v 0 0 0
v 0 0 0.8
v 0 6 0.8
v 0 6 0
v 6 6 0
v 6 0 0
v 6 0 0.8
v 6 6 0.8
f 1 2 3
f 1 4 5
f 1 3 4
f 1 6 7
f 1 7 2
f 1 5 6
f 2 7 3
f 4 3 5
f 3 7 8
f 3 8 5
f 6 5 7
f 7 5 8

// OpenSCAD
/* Warning, this is a very basic generator with a lot of approximation 
input data : [VQFN, 6LX, 6x6x0.8mm, 48, , B, C04-00494B]
generated by com.zoubworld.electronics.cad.model3d.Basic
Date : Sun Feb 15 10:50:48 CET 2026
*/

//body
color("black")
translate([0,0,0])
cube([6.0,6.0,0.8], center=false);
